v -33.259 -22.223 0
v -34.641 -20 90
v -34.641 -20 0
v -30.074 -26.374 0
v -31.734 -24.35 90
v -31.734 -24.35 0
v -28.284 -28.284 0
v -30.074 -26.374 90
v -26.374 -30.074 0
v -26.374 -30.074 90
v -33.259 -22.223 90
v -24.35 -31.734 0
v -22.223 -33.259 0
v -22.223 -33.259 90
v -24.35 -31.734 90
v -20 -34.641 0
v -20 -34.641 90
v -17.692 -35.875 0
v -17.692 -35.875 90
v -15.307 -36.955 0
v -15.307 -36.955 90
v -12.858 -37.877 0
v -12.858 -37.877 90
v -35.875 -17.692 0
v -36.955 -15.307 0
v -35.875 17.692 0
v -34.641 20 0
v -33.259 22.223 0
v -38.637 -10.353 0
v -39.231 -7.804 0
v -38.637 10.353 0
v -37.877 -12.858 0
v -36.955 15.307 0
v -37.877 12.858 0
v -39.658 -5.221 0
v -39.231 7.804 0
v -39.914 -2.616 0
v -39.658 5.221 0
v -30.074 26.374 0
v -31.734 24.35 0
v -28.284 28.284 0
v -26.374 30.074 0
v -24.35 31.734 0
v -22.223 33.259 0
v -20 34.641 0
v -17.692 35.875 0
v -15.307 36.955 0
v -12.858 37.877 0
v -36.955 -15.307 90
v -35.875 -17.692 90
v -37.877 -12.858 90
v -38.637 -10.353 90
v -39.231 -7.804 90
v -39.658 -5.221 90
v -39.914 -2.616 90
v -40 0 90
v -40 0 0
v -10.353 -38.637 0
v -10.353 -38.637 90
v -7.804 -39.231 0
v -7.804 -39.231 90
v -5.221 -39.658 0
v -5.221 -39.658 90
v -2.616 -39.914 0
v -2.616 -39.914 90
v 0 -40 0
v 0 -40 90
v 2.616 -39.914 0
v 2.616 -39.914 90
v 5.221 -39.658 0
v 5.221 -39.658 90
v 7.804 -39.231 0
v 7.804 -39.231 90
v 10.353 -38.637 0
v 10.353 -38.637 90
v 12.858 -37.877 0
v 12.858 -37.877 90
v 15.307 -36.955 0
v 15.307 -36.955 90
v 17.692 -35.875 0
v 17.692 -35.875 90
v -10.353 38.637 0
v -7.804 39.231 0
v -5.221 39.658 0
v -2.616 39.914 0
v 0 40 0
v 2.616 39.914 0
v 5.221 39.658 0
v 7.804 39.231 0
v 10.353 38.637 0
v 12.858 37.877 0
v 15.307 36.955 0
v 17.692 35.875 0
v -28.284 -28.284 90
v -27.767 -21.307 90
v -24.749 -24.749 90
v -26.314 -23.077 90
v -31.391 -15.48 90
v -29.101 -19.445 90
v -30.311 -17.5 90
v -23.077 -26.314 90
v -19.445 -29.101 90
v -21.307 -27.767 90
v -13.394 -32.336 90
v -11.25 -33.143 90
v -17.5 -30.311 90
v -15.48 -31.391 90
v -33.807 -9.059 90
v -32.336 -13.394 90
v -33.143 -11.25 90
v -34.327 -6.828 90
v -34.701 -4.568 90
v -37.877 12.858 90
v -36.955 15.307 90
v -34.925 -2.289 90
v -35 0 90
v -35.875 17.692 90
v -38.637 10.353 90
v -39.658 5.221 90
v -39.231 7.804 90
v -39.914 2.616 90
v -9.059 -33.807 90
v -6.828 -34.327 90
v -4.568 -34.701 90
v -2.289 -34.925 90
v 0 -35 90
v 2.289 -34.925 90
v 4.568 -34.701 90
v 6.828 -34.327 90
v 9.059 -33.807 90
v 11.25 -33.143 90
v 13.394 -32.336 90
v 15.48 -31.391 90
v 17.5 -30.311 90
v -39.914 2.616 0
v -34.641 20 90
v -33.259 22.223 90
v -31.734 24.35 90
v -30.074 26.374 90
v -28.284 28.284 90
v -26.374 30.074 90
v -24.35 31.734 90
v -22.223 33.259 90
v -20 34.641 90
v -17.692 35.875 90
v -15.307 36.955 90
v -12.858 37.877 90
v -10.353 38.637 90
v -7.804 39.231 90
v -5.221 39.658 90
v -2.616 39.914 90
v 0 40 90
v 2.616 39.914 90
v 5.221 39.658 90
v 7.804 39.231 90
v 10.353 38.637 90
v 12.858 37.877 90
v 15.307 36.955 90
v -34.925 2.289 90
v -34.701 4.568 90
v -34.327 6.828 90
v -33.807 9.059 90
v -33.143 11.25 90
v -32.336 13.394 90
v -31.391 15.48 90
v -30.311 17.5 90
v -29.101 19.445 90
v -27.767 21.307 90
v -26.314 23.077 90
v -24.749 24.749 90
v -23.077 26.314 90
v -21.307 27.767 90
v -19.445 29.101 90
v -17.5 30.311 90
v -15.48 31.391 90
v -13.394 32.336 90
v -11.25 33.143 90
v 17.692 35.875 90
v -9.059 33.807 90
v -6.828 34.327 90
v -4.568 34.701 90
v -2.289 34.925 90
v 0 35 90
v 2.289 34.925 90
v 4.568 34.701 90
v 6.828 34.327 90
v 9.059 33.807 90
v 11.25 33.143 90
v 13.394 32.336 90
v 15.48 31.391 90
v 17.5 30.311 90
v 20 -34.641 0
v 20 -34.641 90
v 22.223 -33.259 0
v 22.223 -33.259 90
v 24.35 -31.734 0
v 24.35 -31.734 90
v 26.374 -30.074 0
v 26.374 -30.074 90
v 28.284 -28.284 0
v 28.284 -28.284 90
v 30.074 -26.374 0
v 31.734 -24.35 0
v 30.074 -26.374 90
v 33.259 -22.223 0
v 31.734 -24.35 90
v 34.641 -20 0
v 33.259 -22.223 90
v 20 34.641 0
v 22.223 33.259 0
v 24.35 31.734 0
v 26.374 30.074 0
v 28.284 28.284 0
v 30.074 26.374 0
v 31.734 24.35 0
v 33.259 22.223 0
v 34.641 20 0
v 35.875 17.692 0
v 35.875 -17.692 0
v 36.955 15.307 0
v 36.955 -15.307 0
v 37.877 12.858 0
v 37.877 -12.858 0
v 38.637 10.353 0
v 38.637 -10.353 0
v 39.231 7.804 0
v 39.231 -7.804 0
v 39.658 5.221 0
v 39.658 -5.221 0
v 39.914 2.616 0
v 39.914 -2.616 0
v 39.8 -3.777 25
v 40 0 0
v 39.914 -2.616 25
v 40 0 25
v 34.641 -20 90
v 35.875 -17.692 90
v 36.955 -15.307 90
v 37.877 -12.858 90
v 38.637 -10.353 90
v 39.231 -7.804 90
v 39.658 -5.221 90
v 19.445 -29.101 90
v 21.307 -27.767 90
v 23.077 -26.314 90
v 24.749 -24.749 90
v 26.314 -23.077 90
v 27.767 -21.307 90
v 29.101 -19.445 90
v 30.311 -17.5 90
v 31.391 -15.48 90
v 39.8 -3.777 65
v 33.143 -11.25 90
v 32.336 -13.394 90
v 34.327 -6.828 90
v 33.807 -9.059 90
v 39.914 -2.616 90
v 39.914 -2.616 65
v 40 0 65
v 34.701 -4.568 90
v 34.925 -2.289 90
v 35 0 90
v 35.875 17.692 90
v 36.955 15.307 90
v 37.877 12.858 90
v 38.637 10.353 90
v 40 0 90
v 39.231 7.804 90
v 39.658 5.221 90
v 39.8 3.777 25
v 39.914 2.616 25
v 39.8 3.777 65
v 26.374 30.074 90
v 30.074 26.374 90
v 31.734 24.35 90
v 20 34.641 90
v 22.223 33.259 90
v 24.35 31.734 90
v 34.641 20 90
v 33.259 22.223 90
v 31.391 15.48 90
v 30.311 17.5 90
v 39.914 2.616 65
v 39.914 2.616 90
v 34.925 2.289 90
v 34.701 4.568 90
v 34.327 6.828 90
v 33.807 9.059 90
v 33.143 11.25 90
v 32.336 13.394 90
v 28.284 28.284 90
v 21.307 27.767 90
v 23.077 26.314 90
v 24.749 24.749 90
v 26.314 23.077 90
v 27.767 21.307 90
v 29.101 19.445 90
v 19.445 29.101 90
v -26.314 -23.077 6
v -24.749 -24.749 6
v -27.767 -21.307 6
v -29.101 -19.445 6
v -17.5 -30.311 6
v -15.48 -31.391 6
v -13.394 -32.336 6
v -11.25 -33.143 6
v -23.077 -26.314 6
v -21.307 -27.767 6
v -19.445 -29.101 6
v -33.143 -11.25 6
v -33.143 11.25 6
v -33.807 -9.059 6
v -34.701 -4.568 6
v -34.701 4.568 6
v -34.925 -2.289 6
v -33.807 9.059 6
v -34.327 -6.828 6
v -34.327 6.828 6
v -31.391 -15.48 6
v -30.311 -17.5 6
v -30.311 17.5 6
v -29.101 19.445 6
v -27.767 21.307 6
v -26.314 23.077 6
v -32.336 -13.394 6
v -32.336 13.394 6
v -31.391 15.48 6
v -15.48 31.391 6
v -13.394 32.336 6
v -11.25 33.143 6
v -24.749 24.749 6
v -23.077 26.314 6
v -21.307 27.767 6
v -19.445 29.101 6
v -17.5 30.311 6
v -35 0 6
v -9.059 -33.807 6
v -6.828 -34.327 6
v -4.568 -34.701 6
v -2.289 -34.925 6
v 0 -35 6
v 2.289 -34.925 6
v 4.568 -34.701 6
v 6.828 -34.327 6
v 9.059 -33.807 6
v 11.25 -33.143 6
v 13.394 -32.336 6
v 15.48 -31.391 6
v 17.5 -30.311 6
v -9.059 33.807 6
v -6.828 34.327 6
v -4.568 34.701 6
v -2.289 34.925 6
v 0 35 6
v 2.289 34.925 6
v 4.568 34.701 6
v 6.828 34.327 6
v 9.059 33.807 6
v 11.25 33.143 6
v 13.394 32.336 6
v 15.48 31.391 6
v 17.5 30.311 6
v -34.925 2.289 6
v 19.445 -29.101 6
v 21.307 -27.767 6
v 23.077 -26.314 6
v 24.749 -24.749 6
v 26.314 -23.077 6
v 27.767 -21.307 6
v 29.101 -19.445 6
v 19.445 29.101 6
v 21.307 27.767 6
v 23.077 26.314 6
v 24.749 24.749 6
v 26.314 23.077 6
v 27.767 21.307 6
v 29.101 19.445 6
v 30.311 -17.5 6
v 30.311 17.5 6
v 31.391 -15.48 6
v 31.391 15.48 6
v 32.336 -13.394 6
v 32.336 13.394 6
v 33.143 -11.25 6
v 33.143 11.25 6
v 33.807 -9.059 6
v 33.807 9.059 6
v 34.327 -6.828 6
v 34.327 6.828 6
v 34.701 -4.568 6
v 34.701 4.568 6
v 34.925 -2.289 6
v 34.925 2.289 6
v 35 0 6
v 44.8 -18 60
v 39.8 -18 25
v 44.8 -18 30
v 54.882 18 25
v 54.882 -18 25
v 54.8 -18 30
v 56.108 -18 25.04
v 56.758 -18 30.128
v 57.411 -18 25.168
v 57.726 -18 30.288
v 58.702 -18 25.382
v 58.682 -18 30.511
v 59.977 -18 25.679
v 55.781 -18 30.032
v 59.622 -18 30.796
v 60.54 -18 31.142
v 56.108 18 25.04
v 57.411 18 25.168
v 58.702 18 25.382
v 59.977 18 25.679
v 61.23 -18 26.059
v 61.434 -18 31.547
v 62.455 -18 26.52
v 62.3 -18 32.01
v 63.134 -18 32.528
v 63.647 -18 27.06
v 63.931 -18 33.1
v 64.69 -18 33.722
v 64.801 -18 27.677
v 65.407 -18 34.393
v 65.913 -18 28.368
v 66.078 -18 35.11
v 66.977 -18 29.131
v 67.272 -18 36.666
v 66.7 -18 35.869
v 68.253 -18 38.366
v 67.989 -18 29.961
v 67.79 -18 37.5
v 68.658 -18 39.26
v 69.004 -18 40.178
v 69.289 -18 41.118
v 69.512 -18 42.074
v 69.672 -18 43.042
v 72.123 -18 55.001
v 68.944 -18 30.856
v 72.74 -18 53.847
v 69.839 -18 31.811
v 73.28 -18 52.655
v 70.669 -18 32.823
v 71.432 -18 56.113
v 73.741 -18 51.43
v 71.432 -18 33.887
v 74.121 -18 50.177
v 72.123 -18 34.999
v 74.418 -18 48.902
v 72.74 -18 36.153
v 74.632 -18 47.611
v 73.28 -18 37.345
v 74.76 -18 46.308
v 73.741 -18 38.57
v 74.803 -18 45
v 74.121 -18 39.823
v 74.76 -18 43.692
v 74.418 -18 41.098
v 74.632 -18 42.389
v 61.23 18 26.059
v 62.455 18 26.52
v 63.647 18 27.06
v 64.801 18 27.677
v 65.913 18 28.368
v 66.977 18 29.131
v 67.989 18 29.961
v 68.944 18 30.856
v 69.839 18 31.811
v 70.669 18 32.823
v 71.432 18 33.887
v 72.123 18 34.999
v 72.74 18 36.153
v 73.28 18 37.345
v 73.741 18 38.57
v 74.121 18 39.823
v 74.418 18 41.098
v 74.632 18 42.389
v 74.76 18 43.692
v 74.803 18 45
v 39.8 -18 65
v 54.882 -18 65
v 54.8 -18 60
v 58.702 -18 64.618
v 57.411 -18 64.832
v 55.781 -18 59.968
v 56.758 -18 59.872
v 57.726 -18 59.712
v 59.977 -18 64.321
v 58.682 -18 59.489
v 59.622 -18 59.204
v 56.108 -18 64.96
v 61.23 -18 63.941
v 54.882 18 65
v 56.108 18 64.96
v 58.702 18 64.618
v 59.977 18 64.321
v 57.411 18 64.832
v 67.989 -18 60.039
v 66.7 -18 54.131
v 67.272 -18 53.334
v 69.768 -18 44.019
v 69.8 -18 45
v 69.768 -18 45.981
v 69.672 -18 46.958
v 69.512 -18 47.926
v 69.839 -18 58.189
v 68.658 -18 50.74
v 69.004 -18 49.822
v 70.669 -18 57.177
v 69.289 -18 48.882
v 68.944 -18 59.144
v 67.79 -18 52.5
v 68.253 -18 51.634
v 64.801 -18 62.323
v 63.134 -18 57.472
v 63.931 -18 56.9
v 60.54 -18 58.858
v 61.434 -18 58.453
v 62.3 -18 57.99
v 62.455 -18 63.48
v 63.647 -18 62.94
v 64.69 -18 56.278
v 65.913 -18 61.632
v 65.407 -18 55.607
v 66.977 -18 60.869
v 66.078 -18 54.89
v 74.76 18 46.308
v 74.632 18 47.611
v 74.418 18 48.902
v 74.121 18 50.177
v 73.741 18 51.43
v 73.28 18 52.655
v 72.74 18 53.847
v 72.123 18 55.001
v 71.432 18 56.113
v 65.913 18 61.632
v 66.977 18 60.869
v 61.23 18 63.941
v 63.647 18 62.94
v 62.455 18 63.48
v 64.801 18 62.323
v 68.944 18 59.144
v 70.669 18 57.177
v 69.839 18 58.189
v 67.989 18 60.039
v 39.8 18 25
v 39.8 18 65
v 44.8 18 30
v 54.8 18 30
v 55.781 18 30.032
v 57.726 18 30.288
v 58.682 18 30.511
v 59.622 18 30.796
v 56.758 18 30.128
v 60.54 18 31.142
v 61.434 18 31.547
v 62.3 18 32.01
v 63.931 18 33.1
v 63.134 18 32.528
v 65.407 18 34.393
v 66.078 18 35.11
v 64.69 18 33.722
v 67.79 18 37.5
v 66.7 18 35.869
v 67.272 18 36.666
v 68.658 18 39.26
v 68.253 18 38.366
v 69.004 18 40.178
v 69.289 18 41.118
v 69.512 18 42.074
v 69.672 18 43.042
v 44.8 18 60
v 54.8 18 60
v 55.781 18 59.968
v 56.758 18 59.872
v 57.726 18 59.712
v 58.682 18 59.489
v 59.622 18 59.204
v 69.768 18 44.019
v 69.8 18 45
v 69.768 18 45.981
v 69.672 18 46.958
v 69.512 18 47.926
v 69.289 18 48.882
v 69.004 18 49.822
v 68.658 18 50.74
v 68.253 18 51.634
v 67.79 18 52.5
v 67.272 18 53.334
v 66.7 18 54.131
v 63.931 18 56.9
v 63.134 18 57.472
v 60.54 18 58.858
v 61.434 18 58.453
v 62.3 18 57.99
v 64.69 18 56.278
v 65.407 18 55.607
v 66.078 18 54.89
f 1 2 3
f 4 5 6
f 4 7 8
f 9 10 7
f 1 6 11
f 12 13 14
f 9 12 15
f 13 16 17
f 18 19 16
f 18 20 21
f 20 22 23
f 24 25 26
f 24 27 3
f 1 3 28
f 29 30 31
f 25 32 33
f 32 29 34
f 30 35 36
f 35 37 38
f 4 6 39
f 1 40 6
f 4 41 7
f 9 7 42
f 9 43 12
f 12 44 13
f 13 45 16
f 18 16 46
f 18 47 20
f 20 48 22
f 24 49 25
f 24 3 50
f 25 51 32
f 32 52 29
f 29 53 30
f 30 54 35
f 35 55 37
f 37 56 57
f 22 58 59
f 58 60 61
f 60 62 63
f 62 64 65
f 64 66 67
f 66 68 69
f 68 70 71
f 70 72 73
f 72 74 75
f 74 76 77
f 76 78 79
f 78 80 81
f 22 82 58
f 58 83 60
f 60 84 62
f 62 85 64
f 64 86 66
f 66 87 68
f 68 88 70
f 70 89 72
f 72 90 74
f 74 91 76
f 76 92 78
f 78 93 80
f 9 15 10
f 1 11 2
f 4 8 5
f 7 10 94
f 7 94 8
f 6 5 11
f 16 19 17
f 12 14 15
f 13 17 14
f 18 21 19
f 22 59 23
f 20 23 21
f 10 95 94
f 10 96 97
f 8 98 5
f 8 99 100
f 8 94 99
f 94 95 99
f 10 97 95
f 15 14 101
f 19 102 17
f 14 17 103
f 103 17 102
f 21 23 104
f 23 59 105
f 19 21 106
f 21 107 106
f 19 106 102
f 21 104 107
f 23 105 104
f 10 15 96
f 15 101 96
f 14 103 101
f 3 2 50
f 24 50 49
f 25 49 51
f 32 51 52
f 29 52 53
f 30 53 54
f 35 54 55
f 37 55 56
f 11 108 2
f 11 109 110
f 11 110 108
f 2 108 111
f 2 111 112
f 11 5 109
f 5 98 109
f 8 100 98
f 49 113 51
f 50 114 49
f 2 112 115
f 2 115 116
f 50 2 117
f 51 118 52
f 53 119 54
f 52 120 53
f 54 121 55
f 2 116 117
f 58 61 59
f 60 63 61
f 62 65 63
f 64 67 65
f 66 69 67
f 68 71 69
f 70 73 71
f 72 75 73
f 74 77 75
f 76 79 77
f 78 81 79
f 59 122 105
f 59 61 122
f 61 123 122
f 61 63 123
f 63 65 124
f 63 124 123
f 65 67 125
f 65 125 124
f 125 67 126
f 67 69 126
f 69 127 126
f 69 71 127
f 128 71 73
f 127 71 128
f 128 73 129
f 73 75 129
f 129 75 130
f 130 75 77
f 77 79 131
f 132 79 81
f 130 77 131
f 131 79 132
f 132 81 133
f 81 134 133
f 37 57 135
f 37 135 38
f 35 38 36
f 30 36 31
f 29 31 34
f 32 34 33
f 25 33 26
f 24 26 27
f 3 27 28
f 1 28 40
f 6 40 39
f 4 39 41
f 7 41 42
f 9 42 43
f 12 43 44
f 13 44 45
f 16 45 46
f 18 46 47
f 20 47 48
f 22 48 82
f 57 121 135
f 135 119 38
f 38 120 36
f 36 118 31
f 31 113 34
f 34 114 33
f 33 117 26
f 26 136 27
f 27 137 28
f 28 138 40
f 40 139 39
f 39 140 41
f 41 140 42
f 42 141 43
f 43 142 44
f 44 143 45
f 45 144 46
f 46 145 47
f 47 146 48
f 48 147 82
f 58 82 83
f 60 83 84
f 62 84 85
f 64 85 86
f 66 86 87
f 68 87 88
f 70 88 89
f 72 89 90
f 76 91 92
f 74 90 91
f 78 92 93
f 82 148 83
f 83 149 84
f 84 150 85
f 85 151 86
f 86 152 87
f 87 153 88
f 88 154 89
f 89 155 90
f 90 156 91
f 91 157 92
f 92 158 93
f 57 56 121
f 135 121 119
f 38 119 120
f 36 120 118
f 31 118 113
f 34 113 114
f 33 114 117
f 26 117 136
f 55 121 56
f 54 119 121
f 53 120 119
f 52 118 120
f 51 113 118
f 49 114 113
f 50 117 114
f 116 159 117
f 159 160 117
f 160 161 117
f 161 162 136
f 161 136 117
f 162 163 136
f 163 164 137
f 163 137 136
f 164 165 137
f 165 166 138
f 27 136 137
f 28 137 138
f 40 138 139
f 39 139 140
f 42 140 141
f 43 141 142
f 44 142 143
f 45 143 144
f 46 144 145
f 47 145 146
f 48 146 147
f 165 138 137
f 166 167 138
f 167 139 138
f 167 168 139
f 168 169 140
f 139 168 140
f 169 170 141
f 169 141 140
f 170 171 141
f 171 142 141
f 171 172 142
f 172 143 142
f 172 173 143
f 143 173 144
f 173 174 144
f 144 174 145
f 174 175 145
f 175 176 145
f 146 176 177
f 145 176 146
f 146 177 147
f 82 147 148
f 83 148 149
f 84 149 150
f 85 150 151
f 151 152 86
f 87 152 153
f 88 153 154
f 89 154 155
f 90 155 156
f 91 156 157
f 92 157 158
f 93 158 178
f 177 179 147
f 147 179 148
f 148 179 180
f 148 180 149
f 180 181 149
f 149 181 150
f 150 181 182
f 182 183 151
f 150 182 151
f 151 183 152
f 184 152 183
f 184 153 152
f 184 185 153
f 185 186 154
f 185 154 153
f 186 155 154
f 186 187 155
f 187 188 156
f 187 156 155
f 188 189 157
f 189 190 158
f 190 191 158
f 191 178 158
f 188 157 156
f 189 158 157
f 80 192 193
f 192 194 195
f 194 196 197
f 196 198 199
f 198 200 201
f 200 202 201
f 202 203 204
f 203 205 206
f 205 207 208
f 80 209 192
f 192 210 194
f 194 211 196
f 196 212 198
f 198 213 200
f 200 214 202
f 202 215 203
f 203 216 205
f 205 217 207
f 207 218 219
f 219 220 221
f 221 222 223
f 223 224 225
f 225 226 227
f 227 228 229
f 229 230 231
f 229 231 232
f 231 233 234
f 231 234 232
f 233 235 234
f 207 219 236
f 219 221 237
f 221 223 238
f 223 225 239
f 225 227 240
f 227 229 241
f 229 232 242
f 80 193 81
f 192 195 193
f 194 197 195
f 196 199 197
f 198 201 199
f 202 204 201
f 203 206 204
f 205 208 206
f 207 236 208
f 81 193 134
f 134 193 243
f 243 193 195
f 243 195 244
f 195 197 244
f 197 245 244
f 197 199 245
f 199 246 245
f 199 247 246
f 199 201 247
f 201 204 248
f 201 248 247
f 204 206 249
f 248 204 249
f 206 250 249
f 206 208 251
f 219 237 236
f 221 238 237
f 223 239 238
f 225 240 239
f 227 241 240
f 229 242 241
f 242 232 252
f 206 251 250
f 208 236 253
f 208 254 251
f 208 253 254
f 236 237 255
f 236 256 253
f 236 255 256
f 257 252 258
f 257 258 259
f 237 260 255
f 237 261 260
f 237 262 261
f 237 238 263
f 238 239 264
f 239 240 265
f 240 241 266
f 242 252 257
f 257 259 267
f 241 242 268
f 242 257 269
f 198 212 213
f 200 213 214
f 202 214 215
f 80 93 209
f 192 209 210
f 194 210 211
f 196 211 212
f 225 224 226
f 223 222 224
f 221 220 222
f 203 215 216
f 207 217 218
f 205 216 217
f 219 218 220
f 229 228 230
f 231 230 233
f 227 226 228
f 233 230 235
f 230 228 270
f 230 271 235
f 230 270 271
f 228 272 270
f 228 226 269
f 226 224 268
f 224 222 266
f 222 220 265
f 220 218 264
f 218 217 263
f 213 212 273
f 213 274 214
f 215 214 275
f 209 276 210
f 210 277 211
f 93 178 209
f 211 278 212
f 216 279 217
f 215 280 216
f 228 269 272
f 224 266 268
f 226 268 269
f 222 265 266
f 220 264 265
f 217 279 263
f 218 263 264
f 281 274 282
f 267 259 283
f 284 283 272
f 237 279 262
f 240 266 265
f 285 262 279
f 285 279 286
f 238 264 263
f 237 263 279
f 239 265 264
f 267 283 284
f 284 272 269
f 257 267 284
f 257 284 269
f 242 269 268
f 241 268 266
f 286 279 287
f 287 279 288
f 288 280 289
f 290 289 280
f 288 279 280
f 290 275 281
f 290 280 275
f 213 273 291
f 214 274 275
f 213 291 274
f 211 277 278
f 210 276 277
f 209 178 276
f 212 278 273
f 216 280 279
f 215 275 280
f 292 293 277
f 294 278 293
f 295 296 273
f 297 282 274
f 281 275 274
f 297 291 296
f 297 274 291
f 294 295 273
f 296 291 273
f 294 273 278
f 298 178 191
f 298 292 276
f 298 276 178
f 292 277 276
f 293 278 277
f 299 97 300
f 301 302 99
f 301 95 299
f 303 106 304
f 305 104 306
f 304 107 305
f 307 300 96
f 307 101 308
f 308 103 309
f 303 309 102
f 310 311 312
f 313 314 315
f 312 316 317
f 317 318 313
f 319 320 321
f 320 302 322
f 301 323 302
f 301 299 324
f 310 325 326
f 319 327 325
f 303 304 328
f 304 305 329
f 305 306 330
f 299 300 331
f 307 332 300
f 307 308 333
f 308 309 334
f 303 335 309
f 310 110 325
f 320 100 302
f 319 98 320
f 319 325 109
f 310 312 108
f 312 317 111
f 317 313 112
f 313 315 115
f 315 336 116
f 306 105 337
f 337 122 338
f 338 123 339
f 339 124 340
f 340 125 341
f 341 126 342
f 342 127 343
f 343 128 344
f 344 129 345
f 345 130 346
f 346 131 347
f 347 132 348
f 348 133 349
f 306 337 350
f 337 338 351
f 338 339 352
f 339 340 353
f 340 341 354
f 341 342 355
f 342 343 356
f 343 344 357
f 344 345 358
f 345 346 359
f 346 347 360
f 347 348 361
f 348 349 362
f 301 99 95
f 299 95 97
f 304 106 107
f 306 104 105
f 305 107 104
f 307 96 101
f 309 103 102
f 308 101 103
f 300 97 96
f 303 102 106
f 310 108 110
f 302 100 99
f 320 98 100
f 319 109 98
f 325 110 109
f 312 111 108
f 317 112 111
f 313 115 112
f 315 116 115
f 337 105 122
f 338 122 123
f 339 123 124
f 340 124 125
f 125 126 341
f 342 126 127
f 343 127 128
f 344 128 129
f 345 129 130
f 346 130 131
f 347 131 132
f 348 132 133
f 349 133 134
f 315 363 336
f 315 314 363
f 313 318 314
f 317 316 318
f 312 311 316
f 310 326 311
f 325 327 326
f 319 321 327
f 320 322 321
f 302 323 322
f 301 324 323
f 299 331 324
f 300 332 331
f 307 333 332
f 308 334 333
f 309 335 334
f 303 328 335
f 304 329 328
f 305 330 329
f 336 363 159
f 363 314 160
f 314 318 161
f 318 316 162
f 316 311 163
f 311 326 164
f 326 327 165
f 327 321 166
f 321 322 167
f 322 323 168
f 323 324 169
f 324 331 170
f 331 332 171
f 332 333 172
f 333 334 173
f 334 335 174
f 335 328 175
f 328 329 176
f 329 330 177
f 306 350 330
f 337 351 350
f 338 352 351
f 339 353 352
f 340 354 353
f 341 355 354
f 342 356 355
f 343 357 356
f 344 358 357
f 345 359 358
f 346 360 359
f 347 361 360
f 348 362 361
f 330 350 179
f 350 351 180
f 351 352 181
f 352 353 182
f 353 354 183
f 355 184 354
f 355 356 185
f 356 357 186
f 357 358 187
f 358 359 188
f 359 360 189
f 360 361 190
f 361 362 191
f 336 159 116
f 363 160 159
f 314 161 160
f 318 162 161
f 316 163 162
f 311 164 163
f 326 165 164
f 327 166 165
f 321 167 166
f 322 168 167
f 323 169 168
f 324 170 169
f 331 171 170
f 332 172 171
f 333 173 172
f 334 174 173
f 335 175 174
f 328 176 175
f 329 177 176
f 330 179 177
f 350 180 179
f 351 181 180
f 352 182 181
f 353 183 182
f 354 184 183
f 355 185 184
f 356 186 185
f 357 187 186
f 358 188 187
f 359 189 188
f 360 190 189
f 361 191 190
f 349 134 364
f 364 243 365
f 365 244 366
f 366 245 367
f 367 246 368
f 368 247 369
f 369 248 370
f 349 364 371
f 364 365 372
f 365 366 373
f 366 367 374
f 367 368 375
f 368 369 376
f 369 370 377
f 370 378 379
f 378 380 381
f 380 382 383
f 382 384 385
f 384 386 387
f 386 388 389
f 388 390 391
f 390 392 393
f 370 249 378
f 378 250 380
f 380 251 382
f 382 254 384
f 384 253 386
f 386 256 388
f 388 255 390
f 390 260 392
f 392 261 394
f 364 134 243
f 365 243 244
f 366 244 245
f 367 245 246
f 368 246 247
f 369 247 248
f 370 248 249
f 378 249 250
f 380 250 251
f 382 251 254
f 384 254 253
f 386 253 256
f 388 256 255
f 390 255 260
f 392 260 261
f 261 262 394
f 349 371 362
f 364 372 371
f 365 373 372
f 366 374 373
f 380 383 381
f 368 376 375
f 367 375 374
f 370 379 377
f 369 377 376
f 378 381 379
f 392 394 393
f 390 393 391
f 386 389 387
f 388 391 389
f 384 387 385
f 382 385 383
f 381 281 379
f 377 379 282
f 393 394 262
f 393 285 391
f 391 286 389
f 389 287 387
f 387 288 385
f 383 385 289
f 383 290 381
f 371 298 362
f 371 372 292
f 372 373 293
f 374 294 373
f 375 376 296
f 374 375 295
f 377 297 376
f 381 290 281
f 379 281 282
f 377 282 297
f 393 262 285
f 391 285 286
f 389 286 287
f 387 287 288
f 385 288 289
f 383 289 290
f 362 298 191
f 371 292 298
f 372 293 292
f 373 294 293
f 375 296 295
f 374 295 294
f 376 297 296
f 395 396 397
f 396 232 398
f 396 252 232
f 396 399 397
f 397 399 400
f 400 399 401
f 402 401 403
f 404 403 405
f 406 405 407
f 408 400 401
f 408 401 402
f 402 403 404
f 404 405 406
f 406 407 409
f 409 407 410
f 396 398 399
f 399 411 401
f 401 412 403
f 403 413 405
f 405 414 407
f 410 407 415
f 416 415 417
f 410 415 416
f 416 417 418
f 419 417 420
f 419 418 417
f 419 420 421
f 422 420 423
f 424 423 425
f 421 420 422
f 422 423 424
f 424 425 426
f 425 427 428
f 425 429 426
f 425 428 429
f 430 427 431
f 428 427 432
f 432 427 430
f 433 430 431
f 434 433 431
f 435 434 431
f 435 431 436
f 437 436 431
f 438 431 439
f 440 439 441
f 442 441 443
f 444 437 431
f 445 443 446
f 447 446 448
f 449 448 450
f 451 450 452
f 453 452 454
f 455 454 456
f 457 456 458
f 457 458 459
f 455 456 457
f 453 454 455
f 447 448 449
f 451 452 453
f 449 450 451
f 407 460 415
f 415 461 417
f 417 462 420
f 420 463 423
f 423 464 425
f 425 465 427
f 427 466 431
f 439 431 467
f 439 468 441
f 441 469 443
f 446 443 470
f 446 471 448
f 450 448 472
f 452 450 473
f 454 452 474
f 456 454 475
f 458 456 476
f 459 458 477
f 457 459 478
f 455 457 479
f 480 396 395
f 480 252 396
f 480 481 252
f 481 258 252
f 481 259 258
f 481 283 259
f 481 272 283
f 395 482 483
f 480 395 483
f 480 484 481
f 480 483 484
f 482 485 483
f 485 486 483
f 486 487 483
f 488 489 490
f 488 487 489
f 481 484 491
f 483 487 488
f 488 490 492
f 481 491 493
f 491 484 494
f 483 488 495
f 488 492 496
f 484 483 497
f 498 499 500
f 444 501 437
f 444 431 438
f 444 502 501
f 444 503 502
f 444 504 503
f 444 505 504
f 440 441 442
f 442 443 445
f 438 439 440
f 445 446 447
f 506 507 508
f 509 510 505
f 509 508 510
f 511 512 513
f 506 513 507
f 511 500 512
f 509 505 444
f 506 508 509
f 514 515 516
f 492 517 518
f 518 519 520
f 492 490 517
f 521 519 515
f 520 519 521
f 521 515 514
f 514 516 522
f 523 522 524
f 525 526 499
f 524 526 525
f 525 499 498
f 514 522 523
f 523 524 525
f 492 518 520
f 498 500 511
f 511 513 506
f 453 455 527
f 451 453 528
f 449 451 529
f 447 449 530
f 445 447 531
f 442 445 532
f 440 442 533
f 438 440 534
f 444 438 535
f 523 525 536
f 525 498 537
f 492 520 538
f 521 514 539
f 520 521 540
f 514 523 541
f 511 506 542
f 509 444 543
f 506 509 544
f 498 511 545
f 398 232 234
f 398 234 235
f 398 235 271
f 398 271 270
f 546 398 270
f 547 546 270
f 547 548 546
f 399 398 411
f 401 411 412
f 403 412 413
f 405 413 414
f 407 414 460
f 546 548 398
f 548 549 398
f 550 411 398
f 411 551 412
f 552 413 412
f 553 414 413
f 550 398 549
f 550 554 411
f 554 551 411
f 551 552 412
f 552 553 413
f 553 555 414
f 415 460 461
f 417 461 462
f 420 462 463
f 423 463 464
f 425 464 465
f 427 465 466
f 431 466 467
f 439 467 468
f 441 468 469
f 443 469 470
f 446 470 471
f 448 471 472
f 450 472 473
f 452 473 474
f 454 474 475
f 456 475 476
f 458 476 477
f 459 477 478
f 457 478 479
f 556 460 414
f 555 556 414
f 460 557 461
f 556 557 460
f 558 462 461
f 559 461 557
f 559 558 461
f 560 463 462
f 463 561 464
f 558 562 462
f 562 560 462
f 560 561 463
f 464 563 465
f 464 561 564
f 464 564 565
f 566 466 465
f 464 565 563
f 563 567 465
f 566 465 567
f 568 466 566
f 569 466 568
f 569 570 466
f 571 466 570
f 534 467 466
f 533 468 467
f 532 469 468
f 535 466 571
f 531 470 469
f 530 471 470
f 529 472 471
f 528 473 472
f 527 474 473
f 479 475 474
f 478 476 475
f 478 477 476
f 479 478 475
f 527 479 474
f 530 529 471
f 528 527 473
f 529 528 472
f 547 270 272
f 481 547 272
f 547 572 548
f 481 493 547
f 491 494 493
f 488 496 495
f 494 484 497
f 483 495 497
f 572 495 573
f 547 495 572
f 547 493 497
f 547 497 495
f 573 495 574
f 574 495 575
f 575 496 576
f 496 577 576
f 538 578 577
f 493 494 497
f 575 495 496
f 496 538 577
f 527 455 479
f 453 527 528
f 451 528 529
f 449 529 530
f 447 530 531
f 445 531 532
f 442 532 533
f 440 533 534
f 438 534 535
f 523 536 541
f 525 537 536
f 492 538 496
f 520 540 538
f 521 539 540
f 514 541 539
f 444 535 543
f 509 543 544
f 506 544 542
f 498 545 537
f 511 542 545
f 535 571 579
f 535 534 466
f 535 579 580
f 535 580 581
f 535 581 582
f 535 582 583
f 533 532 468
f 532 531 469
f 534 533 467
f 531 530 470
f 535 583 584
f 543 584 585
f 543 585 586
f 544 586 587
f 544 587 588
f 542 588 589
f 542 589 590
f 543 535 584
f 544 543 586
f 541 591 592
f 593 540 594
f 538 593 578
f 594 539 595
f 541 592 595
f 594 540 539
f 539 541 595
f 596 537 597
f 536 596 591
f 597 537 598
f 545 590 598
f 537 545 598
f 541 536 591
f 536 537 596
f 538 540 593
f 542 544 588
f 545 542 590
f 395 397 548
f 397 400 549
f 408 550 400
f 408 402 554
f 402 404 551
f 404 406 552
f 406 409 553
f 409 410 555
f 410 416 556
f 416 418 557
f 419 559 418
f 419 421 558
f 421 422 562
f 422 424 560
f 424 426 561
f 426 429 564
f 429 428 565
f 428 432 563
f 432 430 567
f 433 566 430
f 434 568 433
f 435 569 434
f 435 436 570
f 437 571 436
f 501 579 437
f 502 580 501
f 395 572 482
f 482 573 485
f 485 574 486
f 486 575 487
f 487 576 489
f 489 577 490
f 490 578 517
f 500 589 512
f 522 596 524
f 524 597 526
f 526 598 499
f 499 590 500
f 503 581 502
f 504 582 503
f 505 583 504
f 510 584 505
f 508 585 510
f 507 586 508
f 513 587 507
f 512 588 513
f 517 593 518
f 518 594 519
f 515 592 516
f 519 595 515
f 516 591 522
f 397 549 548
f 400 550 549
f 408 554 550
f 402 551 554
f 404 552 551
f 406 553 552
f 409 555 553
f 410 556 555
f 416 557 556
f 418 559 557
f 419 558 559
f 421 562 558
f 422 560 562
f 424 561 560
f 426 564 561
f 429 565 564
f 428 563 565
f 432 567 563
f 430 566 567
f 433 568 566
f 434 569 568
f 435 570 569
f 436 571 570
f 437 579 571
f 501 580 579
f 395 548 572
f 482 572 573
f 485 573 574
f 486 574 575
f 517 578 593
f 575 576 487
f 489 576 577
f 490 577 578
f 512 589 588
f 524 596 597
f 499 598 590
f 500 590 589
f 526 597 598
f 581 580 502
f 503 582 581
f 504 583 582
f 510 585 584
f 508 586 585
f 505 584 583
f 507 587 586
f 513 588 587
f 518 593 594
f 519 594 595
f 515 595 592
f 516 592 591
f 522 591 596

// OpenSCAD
// Parameters
$fn = 96;

mug_od = 80;
mug_id = 70;
mug_h  = 90;
mug_bottom = 6;

handle_inner_w = 25; // inner D width (X) = 25 mm
handle_inner_h = 30; // inner D height (Z) = 30 mm
handle_wall_t  = 5;  // 2D (XZ) wall thickness around inner D
handle_depth_y = 36; // thickness along Y (tangential)
attach_eps     = 0.2; // small overlap into mug for robust union

// Mug body: outer cylinder minus inner cavity (leaving 6mm bottom)
module mug_body(od, id, h, bottom) {
    difference() {
        cylinder(d = od, h = h);
        translate([0, 0, bottom])
            cylinder(d = id, h = h - bottom + 0.02); // +tiny to ensure open top
    }
}

// 2D inner D shape in XY-plane: X=radial, Y=vertical (will map to Z after rotation)
// Width (X) = handle_inner_w, Height (Y) = handle_inner_h
module d2d_inner(iw, ih) {
    r = ih/2;          // semicircle radius
    d = iw - r;        // rectangle width to make D profile
    intersection() {
        // Clip to half-plane x >= 0 using a large square
        translate([250, 0]) square([500, 500], center = true);
        union() {
            // rectangle from x=0..d, y=-r..r
            translate([d/2, 0]) square([d, ih], center = true);
            // semicircle (circle) on the right
            translate([d, 0]) circle(r = r);
        }
    }
}

// Handle: create 3D by extruding the 2D D profile along Z, then rotate to make extrusion along Y
module handle(iw, ih, wall_t, depth_y, mug_outer_r, z_center, eps) {
    // Place so outer flat of the OUTER D (which is at x = -wall_t) sinks eps into mug at x = mug_outer_r - eps
    dx = mug_outer_r - eps + wall_t;

    translate([dx, 0, z_center])
        rotate([-90, 0, 0]) // Z(extrude) -> Y, Y(2D) -> -Z
            difference() {
                // Outer D: offset the inner D by wall thickness in 2D, then extrude along Z
                linear_extrude(height = depth_y, center = true)
                    offset(delta = wall_t) d2d_inner(iw, ih);
                // Subtract inner D to form the handle hole
                linear_extrude(height = depth_y + 0.4, center = true) // a bit taller for clean subtraction
                    d2d_inner(iw, ih);
            }
}

union() {
    mug_body(mug_od, mug_id, mug_h, mug_bottom);
    handle(handle_inner_w, handle_inner_h, handle_wall_t, handle_depth_y, mug_od/2, mug_h/2, attach_eps);
}
